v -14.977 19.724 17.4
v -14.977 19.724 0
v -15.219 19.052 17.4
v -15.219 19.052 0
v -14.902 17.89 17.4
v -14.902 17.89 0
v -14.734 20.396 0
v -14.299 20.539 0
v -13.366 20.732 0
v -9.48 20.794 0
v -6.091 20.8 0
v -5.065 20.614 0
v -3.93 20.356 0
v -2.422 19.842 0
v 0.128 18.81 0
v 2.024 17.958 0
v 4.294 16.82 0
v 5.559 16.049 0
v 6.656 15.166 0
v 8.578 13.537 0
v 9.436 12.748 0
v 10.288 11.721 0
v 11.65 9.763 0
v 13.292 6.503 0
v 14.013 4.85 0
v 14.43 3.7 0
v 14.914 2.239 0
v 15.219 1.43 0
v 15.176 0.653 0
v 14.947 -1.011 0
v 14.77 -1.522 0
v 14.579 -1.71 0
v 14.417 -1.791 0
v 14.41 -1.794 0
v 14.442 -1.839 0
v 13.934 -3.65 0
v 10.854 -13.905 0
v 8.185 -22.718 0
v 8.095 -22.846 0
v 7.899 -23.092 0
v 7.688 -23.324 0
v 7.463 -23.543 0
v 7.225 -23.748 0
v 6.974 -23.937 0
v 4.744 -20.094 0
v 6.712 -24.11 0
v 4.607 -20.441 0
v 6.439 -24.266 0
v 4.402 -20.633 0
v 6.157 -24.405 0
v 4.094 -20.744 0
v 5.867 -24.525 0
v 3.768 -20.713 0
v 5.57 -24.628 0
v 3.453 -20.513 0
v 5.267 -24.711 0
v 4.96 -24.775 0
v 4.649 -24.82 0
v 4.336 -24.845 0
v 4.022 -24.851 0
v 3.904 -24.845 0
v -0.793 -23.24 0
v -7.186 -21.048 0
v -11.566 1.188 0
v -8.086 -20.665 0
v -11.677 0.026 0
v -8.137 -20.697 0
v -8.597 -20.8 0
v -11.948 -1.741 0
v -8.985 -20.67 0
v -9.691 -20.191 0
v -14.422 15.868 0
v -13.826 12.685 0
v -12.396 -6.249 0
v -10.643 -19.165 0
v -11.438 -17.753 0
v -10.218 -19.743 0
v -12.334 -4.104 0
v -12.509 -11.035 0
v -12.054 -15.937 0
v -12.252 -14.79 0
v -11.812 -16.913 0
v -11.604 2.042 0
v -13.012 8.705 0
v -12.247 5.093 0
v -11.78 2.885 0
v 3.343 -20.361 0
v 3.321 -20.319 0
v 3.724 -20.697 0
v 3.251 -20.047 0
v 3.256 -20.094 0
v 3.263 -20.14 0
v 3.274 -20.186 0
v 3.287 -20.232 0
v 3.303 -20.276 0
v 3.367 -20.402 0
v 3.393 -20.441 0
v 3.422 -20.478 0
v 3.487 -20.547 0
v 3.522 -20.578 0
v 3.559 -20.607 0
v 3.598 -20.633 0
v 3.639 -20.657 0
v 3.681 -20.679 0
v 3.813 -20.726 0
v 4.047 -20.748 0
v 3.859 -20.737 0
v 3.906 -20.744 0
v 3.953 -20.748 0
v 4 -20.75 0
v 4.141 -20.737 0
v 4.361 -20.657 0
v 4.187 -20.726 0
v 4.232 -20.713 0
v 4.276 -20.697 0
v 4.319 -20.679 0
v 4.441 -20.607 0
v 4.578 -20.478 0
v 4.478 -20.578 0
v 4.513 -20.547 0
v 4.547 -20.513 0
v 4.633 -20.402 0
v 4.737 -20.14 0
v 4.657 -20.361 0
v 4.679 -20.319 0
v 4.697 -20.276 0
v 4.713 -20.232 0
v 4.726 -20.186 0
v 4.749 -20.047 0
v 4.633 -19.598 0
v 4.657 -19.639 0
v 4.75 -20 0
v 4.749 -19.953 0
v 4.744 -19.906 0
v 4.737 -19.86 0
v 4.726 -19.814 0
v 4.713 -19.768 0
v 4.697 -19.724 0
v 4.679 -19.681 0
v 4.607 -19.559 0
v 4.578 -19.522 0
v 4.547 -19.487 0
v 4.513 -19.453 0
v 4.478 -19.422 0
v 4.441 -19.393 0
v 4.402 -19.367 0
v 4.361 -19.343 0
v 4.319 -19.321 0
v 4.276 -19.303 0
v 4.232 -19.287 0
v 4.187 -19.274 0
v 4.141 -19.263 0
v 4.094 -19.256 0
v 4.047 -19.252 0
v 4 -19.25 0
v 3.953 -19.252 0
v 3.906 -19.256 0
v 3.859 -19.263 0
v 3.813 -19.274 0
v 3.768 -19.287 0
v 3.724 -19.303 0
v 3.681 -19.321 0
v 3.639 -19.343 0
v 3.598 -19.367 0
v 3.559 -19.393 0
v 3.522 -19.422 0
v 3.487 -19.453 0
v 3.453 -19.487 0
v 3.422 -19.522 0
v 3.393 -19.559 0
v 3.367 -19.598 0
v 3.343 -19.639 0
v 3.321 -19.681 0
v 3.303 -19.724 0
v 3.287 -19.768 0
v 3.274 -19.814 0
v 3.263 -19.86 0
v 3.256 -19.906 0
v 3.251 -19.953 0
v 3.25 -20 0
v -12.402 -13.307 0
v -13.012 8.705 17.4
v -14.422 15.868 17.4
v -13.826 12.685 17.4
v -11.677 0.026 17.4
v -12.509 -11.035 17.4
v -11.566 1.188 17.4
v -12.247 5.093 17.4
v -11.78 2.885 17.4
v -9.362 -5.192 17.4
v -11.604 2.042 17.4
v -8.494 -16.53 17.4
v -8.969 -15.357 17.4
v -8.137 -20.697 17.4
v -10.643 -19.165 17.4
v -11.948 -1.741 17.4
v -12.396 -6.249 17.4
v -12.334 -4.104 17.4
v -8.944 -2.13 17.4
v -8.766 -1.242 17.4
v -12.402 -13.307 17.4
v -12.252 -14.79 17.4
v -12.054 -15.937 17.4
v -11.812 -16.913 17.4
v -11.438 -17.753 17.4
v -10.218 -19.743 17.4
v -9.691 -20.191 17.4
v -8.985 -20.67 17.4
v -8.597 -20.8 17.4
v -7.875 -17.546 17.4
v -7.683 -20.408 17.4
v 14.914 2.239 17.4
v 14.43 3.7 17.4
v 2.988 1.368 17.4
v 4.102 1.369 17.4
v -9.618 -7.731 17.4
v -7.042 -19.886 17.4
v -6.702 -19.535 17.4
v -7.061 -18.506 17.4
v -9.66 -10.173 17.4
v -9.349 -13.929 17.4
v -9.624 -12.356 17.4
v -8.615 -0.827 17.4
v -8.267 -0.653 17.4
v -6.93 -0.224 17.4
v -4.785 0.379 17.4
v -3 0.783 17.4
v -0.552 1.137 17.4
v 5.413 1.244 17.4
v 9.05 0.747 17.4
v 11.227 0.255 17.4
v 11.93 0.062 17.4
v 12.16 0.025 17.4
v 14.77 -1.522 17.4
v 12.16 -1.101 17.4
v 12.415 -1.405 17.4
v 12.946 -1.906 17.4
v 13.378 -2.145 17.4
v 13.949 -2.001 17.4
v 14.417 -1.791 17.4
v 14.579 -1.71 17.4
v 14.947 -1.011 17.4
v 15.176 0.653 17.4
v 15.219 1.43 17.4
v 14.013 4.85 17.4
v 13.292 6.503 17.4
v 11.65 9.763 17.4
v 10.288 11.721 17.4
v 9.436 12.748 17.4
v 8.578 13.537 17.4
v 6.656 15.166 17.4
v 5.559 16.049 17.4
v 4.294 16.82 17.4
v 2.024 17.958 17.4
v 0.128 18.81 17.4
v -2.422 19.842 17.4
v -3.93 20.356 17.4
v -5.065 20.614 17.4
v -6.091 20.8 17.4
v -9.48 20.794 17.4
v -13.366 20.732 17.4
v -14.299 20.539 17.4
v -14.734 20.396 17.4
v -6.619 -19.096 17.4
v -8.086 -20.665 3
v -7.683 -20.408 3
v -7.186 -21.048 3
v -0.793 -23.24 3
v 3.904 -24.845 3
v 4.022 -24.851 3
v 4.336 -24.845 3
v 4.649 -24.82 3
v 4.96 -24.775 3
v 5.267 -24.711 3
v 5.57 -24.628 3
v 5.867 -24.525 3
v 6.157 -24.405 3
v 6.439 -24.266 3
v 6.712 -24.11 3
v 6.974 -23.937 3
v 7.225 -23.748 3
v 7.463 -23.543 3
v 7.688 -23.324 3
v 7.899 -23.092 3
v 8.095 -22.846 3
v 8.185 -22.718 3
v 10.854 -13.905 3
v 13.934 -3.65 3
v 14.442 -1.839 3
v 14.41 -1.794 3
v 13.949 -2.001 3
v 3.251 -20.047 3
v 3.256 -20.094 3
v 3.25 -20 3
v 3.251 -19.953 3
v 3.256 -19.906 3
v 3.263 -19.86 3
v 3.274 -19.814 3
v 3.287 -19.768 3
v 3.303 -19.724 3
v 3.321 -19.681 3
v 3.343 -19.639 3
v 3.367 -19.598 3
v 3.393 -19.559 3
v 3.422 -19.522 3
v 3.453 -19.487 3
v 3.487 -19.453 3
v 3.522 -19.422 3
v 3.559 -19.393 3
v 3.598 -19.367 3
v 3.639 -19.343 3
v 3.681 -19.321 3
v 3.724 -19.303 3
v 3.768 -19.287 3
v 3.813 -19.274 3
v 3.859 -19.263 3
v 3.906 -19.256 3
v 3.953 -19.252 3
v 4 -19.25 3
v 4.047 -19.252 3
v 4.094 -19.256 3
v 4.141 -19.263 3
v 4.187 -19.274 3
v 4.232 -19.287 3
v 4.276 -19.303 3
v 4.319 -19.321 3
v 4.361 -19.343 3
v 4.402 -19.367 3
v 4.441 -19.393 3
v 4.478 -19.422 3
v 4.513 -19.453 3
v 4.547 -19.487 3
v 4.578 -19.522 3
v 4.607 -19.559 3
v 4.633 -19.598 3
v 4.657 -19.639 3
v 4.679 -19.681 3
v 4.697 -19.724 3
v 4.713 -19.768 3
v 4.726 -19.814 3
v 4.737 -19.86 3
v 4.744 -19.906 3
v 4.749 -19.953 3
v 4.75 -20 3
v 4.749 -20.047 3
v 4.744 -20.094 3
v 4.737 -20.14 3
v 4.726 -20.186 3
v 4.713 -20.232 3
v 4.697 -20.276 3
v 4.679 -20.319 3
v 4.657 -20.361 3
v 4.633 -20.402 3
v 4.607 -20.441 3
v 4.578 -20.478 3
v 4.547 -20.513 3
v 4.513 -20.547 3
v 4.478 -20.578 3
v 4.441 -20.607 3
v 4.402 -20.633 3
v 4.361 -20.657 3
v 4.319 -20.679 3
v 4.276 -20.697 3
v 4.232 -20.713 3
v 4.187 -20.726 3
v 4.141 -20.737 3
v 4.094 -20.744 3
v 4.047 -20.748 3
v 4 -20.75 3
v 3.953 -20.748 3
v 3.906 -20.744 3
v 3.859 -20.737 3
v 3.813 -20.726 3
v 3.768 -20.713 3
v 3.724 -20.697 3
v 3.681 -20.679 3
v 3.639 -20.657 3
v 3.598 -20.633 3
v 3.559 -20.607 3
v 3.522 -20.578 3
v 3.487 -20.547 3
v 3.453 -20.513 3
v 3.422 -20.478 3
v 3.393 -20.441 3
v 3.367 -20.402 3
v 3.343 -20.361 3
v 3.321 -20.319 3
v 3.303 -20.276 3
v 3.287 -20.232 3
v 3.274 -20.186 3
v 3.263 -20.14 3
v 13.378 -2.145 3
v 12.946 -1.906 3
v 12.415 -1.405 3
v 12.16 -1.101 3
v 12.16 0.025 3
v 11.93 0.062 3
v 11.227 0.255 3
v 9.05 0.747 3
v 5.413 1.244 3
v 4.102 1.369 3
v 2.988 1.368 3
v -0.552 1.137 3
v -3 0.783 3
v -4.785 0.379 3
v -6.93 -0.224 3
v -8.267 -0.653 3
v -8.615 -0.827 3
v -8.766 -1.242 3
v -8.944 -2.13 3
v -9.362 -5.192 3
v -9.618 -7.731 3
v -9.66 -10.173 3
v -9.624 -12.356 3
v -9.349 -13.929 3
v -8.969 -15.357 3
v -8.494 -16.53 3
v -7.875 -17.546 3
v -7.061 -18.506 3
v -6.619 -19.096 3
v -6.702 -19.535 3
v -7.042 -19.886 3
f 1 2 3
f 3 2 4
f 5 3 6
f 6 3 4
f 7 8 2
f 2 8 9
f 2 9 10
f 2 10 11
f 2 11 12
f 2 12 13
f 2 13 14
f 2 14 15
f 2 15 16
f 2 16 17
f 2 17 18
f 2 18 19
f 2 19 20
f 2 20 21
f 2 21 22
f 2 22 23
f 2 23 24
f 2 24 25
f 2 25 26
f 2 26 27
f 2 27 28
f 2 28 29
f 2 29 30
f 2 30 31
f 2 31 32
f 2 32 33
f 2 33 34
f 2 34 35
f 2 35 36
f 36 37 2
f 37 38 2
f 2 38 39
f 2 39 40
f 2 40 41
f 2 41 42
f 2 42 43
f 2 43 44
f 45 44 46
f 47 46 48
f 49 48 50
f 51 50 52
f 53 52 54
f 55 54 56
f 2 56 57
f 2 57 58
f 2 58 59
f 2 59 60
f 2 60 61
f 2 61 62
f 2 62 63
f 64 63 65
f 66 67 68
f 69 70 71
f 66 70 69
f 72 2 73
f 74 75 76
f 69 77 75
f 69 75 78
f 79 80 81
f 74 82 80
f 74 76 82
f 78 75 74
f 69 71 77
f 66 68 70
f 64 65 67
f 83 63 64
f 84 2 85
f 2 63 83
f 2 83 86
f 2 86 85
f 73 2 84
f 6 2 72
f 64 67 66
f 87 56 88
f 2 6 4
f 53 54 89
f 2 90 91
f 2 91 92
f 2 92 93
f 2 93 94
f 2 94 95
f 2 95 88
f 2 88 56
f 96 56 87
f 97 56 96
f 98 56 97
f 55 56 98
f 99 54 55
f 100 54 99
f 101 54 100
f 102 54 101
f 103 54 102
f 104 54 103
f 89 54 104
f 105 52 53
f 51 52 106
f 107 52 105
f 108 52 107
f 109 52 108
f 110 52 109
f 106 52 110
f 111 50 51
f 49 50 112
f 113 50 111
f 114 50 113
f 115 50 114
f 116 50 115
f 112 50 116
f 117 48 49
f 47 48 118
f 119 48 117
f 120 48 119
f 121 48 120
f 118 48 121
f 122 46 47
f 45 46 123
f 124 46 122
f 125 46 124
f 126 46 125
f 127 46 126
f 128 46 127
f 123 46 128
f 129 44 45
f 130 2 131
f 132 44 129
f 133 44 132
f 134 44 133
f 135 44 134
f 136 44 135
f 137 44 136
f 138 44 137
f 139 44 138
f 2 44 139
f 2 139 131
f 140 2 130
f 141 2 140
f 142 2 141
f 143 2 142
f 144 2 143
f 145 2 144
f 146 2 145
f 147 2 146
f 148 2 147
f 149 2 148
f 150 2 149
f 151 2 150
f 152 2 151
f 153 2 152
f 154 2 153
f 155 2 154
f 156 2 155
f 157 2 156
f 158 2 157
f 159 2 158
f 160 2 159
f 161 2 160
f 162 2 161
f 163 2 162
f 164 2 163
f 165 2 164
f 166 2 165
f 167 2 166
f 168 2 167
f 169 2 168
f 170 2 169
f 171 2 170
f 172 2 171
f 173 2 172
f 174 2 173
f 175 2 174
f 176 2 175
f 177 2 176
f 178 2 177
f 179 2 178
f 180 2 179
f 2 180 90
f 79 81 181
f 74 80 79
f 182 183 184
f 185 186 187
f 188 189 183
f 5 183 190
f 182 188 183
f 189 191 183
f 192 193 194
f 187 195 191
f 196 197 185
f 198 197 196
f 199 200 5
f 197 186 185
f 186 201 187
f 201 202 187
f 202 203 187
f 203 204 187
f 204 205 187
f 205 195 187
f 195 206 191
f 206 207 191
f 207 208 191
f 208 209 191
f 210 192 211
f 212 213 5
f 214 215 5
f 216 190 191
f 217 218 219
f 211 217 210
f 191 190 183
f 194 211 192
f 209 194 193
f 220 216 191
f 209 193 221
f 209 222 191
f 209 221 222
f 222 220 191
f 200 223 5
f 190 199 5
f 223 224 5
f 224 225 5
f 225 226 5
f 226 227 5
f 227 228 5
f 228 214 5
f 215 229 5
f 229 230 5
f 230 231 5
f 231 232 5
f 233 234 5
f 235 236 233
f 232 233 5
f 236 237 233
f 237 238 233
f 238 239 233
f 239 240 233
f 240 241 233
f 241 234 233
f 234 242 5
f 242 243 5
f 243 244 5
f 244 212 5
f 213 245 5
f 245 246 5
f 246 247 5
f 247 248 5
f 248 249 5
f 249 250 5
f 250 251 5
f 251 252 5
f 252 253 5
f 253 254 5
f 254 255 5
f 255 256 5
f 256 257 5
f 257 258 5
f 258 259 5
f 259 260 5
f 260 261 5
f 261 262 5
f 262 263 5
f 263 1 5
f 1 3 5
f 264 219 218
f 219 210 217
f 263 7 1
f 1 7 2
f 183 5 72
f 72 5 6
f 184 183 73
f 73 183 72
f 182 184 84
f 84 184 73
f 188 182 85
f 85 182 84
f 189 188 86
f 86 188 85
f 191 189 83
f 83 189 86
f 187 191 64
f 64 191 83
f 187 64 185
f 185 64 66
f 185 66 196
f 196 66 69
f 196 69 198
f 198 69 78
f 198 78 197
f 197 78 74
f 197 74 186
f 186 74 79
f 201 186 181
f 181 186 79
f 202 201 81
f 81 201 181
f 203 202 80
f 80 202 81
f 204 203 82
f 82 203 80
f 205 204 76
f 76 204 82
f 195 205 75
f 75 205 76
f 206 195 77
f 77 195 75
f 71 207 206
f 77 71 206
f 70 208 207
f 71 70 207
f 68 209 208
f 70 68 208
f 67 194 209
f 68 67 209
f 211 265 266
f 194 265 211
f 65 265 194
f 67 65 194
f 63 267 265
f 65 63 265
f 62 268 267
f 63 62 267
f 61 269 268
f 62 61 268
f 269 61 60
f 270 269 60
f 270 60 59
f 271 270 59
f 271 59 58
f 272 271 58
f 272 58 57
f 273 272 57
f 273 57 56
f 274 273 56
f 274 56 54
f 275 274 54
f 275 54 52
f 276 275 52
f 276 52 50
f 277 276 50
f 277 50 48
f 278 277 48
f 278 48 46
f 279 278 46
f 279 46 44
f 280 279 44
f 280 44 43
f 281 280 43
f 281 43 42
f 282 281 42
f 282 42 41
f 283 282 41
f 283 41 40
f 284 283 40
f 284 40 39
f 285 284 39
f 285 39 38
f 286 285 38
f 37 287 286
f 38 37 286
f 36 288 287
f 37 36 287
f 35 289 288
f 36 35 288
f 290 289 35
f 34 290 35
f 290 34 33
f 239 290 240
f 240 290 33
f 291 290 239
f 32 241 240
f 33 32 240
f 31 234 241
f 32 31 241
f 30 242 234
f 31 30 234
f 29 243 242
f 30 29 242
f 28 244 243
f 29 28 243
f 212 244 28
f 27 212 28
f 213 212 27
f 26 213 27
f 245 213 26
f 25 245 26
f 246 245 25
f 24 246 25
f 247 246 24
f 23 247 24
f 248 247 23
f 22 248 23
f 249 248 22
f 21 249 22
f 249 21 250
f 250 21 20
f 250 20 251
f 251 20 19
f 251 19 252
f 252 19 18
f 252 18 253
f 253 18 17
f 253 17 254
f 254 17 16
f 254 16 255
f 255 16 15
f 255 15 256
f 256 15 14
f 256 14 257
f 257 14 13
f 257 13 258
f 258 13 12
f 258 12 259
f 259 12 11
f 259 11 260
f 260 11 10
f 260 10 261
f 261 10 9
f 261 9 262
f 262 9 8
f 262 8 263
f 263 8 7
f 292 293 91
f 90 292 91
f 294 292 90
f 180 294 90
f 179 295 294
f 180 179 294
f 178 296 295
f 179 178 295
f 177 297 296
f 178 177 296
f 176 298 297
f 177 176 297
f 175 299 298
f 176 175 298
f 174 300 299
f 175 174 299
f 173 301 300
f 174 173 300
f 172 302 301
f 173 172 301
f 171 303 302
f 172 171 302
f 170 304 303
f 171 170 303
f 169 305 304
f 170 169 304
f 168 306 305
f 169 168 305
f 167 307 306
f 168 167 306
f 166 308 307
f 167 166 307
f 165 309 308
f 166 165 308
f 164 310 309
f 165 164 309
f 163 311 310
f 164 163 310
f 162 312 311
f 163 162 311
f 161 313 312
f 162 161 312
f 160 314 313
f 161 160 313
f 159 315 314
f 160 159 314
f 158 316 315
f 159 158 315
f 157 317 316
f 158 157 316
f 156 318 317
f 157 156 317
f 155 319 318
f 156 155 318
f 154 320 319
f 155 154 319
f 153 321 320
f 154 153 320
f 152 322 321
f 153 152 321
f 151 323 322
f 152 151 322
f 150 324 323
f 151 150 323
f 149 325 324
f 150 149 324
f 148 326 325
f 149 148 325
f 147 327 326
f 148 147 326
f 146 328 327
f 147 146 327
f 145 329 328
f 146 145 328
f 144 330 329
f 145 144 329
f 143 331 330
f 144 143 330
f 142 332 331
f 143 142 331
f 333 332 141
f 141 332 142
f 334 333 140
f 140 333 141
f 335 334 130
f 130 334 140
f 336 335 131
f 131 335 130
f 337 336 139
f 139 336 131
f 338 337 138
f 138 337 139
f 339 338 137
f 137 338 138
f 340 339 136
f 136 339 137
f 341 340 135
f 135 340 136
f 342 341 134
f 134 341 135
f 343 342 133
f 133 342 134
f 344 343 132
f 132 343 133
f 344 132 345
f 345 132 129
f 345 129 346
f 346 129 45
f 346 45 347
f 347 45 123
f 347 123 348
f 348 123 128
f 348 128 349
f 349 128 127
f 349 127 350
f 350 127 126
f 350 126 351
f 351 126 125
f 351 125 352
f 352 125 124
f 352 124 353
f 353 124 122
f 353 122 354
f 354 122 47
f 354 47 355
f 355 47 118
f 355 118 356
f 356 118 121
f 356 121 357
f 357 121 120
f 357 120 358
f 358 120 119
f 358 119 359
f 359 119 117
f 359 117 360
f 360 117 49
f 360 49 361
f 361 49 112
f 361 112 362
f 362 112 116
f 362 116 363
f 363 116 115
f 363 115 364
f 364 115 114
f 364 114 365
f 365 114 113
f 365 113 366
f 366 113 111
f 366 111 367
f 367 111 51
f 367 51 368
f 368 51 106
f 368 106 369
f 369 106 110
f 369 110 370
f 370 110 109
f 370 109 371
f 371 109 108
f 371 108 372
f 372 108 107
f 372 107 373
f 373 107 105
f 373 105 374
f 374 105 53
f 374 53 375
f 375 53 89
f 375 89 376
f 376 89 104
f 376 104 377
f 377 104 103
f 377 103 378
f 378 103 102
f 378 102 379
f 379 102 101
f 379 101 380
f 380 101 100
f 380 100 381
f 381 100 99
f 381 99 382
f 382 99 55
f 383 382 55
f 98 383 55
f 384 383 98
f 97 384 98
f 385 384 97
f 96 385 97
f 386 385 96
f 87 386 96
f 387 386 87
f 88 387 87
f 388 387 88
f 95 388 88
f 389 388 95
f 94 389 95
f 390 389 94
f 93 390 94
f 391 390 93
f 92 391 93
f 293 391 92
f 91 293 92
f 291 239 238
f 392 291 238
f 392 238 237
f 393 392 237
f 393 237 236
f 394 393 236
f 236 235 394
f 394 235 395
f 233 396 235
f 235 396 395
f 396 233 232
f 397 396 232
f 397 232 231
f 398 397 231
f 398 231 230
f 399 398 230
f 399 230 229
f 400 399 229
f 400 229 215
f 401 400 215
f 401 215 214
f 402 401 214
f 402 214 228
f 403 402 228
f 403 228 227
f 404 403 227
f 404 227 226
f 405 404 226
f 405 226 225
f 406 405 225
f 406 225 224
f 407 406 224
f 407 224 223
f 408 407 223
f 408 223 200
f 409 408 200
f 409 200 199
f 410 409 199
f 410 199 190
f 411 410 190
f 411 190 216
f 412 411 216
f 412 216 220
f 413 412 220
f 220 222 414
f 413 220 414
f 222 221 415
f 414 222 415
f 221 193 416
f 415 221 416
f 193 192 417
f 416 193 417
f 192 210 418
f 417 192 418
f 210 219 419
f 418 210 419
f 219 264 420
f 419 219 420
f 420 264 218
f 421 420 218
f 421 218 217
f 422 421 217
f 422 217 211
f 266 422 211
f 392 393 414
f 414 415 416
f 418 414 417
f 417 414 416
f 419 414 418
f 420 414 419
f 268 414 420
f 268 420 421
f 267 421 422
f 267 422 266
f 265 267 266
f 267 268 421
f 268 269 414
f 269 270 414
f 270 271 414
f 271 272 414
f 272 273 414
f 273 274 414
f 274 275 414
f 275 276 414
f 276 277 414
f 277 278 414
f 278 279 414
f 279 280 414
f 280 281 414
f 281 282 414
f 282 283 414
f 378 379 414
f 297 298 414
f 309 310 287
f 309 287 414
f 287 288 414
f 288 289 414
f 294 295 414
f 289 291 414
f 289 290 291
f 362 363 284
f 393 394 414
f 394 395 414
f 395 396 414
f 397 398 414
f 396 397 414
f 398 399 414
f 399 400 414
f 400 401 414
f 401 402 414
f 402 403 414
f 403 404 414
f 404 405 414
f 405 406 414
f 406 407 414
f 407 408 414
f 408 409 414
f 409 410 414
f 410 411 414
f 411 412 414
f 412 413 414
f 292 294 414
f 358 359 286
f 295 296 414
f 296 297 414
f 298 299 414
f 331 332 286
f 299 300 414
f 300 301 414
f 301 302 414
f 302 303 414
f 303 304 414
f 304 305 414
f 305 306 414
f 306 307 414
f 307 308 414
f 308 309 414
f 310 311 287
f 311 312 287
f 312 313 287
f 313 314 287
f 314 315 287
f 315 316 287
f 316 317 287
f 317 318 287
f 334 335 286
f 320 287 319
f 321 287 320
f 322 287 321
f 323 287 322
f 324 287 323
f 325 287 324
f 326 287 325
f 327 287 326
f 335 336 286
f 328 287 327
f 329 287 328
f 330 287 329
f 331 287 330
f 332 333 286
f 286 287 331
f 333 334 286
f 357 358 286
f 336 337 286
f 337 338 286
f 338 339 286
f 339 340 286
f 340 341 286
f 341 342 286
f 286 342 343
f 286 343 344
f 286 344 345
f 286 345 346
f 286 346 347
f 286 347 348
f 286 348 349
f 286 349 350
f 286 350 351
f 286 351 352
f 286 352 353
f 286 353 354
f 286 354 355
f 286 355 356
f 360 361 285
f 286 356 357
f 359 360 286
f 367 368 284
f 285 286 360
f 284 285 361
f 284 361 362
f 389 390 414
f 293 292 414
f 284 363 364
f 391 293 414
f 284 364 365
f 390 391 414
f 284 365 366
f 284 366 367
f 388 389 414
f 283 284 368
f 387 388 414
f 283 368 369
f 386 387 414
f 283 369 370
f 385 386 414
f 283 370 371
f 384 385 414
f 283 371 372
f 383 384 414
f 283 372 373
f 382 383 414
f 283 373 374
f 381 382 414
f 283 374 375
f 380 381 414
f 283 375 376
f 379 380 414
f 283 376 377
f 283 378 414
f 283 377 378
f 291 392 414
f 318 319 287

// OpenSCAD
// file: Parte2.scad
// Module names are of the form poly_<inkscape-path-id>().  As a result,
// you can associate a polygon in this OpenSCAD program with the corresponding
// SVG element in the Inkscape document by looking for the XML element with
// the attribute id="inkscape-path-id".

// fudge value is used to ensure that subtracted solids are a tad taller
// in the z dimension than the polygon being subtracted from.  This helps
// keep the resulting .stl file manifold.
fudge = 0.1;

module parte2(h)
{
  scale([25.4/90, -25.4/90, 1]) union()
  {
    linear_extrude(height=h)
      polygon([[0.056252,-27.350919],[-6.431466,-26.899341],[-11.269129,-26.213381],[-14.881750,-25.388353],[-19.016264,-24.246127],[-21.819483,-23.113277],[-22.382002,-22.725764],[-23.332034,-13.687960],[-24.294566,-4.650156],[-24.257065,-0.637521],[-24.219564,3.375113],[-23.507040,5.250176],[-21.686666,9.222185],[-19.894418,11.637891],[-19.388151,12.216035],[-19.144393,13.262946],[-19.066266,14.825498],[-20.019423,15.863033],[-20.944454,16.675560],[-18.278739,17.811536],[-5.693941,22.125743],[9.406566,27.288417],[9.944084,27.350919],[10.869115,24.550825],[11.931651,21.250714],[17.231829,3.750126],[23.294533,-16.438052],[24.294566,-20.000672],[23.907053,-20.550690],[23.532041,-20.850701],[22.719513,-20.588192],[21.906986,-20.313183],[21.319466,-20.738197],[20.327245,-21.749168],[20.056924,-23.313283],[19.994422,-24.625827],[19.244397,-24.763332],[17.681844,-25.163345],[13.405138,-26.135253],[6.156457,-27.125911],[0.056252,-27.350919]]);
  }
}

parte2(1);
// file: Parte1.scad
// Module names are of the form poly_<inkscape-path-id>().  As a result,
// you can associate a polygon in this OpenSCAD program with the corresponding
// SVG element in the Inkscape document by looking for the XML element with
// the attribute id="inkscape-path-id".

// fudge value is used to ensure that subtracted solids are a tad taller
// in the z dimension than the polygon being subtracted from.  This helps
// keep the resulting .stl file manifold.
fudge = 0.1;

module parte1(h)
{
  scale([25.4/90, -25.4/90, 1]) union()
  {
    linear_extrude(height=h)
      polygon([[-47.360202,-73.458439],[-50.665171,-72.775412],[-52.207490,-72.268650],[-53.066782,-69.889073],[-53.926073,-67.509495],[-52.802384,-63.389301],[-51.103079,-56.225781],[-48.990653,-44.947575],[-46.104314,-30.846375],[-43.394240,-18.045129],[-41.741755,-10.223370],[-41.115877,-7.234439],[-40.981612,-4.208327],[-41.376143,-0.091575],[-42.336650,6.169275],[-43.702703,14.541862],[-43.923035,22.143291],[-44.322385,39.100534],[-43.945068,47.150887],[-43.410765,52.405788],[-42.711213,56.470899],[-41.851921,59.927346],[-40.529933,62.904572],[-37.709693,67.906091],[-36.205933,69.955172],[-34.338625,71.541557],[-31.837866,73.240862],[-30.460795,73.700803],[-28.833098,73.337257],[-27.221926,72.312716],[-24.952514,70.461934],[-23.748955,69.219816],[-23.454262,67.663727],[-25.018613,65.570580],[-27.902887,62.169216],[-30.097249,58.569555],[-31.779340,54.416310],[-33.126803,49.354200],[-34.099015,43.782574],[-34.228460,36.046192],[-34.079736,27.395437],[-33.170870,18.397659],[-31.691896,7.549099],[-31.060854,4.402150],[-30.526895,2.930406],[-29.293040,2.313478],[-24.555918,0.793192],[-16.954490,-1.344021],[-10.630983,-2.776174],[-1.955440,-4.026554],[10.586917,-4.847288],[14.536354,-4.850042],[19.179835,-4.406625],[32.066459,-2.646729],[39.780807,-0.903358],[42.270550,-0.220331],[43.085776,-0.088133],[43.085776,1.916882],[43.085776,3.899863],[43.989134,4.979486],[45.870212,6.753153],[47.404268,7.601428],[49.425808,7.089158],[51.083800,6.345540],[51.656662,6.059109],[52.334180,5.392263],[52.962124,3.583137],[53.771842,-2.313478],[53.926073,-5.067619],[52.846450,-7.931925],[51.127867,-13.109709],[49.650959,-17.185149],[47.095805,-23.041140],[41.279060,-34.592006],[36.453805,-41.532441],[33.432513,-45.170660],[30.394696,-47.966113],[23.586460,-53.738792],[19.697614,-56.867496],[15.213873,-59.599603],[7.171782,-63.631665],[0.451679,-66.650203],[-8.581902,-70.307702],[-13.924935,-72.128189],[-17.945980,-73.039809],[-21.581446,-73.700803],[-33.589499,-73.678770],[-47.360202,-73.458439]]);
  }
}

parte1(1);
// main file
use<Parte1.scad>;
use<Parte2.scad>;

$fn=100;

module PiezaCuna(){
	color("lightblue")
		parte1(17.4);
	color("lightgreen")
		translate([2.1,-12,0])
			scale([1.8,1.8,1])
				parte2(3);
}

module MediaLuna(){
	rotate([0,0,118])
	difference(){
		cylinder(r=4,h=4);
		translate([3,0,-0.1])
			cylinder(r=5,h=4.2);
	}
}

module HuecoTornillo(){
	translate([0,0,-1])
		cylinder(r=1.5/2,h=5);
}

difference(){
	PiezaCuna();
	translate([5.5,-22.5,-0.1])
		MediaLuna();
	translate([4,-20,0])
		HuecoTornillo();
}
